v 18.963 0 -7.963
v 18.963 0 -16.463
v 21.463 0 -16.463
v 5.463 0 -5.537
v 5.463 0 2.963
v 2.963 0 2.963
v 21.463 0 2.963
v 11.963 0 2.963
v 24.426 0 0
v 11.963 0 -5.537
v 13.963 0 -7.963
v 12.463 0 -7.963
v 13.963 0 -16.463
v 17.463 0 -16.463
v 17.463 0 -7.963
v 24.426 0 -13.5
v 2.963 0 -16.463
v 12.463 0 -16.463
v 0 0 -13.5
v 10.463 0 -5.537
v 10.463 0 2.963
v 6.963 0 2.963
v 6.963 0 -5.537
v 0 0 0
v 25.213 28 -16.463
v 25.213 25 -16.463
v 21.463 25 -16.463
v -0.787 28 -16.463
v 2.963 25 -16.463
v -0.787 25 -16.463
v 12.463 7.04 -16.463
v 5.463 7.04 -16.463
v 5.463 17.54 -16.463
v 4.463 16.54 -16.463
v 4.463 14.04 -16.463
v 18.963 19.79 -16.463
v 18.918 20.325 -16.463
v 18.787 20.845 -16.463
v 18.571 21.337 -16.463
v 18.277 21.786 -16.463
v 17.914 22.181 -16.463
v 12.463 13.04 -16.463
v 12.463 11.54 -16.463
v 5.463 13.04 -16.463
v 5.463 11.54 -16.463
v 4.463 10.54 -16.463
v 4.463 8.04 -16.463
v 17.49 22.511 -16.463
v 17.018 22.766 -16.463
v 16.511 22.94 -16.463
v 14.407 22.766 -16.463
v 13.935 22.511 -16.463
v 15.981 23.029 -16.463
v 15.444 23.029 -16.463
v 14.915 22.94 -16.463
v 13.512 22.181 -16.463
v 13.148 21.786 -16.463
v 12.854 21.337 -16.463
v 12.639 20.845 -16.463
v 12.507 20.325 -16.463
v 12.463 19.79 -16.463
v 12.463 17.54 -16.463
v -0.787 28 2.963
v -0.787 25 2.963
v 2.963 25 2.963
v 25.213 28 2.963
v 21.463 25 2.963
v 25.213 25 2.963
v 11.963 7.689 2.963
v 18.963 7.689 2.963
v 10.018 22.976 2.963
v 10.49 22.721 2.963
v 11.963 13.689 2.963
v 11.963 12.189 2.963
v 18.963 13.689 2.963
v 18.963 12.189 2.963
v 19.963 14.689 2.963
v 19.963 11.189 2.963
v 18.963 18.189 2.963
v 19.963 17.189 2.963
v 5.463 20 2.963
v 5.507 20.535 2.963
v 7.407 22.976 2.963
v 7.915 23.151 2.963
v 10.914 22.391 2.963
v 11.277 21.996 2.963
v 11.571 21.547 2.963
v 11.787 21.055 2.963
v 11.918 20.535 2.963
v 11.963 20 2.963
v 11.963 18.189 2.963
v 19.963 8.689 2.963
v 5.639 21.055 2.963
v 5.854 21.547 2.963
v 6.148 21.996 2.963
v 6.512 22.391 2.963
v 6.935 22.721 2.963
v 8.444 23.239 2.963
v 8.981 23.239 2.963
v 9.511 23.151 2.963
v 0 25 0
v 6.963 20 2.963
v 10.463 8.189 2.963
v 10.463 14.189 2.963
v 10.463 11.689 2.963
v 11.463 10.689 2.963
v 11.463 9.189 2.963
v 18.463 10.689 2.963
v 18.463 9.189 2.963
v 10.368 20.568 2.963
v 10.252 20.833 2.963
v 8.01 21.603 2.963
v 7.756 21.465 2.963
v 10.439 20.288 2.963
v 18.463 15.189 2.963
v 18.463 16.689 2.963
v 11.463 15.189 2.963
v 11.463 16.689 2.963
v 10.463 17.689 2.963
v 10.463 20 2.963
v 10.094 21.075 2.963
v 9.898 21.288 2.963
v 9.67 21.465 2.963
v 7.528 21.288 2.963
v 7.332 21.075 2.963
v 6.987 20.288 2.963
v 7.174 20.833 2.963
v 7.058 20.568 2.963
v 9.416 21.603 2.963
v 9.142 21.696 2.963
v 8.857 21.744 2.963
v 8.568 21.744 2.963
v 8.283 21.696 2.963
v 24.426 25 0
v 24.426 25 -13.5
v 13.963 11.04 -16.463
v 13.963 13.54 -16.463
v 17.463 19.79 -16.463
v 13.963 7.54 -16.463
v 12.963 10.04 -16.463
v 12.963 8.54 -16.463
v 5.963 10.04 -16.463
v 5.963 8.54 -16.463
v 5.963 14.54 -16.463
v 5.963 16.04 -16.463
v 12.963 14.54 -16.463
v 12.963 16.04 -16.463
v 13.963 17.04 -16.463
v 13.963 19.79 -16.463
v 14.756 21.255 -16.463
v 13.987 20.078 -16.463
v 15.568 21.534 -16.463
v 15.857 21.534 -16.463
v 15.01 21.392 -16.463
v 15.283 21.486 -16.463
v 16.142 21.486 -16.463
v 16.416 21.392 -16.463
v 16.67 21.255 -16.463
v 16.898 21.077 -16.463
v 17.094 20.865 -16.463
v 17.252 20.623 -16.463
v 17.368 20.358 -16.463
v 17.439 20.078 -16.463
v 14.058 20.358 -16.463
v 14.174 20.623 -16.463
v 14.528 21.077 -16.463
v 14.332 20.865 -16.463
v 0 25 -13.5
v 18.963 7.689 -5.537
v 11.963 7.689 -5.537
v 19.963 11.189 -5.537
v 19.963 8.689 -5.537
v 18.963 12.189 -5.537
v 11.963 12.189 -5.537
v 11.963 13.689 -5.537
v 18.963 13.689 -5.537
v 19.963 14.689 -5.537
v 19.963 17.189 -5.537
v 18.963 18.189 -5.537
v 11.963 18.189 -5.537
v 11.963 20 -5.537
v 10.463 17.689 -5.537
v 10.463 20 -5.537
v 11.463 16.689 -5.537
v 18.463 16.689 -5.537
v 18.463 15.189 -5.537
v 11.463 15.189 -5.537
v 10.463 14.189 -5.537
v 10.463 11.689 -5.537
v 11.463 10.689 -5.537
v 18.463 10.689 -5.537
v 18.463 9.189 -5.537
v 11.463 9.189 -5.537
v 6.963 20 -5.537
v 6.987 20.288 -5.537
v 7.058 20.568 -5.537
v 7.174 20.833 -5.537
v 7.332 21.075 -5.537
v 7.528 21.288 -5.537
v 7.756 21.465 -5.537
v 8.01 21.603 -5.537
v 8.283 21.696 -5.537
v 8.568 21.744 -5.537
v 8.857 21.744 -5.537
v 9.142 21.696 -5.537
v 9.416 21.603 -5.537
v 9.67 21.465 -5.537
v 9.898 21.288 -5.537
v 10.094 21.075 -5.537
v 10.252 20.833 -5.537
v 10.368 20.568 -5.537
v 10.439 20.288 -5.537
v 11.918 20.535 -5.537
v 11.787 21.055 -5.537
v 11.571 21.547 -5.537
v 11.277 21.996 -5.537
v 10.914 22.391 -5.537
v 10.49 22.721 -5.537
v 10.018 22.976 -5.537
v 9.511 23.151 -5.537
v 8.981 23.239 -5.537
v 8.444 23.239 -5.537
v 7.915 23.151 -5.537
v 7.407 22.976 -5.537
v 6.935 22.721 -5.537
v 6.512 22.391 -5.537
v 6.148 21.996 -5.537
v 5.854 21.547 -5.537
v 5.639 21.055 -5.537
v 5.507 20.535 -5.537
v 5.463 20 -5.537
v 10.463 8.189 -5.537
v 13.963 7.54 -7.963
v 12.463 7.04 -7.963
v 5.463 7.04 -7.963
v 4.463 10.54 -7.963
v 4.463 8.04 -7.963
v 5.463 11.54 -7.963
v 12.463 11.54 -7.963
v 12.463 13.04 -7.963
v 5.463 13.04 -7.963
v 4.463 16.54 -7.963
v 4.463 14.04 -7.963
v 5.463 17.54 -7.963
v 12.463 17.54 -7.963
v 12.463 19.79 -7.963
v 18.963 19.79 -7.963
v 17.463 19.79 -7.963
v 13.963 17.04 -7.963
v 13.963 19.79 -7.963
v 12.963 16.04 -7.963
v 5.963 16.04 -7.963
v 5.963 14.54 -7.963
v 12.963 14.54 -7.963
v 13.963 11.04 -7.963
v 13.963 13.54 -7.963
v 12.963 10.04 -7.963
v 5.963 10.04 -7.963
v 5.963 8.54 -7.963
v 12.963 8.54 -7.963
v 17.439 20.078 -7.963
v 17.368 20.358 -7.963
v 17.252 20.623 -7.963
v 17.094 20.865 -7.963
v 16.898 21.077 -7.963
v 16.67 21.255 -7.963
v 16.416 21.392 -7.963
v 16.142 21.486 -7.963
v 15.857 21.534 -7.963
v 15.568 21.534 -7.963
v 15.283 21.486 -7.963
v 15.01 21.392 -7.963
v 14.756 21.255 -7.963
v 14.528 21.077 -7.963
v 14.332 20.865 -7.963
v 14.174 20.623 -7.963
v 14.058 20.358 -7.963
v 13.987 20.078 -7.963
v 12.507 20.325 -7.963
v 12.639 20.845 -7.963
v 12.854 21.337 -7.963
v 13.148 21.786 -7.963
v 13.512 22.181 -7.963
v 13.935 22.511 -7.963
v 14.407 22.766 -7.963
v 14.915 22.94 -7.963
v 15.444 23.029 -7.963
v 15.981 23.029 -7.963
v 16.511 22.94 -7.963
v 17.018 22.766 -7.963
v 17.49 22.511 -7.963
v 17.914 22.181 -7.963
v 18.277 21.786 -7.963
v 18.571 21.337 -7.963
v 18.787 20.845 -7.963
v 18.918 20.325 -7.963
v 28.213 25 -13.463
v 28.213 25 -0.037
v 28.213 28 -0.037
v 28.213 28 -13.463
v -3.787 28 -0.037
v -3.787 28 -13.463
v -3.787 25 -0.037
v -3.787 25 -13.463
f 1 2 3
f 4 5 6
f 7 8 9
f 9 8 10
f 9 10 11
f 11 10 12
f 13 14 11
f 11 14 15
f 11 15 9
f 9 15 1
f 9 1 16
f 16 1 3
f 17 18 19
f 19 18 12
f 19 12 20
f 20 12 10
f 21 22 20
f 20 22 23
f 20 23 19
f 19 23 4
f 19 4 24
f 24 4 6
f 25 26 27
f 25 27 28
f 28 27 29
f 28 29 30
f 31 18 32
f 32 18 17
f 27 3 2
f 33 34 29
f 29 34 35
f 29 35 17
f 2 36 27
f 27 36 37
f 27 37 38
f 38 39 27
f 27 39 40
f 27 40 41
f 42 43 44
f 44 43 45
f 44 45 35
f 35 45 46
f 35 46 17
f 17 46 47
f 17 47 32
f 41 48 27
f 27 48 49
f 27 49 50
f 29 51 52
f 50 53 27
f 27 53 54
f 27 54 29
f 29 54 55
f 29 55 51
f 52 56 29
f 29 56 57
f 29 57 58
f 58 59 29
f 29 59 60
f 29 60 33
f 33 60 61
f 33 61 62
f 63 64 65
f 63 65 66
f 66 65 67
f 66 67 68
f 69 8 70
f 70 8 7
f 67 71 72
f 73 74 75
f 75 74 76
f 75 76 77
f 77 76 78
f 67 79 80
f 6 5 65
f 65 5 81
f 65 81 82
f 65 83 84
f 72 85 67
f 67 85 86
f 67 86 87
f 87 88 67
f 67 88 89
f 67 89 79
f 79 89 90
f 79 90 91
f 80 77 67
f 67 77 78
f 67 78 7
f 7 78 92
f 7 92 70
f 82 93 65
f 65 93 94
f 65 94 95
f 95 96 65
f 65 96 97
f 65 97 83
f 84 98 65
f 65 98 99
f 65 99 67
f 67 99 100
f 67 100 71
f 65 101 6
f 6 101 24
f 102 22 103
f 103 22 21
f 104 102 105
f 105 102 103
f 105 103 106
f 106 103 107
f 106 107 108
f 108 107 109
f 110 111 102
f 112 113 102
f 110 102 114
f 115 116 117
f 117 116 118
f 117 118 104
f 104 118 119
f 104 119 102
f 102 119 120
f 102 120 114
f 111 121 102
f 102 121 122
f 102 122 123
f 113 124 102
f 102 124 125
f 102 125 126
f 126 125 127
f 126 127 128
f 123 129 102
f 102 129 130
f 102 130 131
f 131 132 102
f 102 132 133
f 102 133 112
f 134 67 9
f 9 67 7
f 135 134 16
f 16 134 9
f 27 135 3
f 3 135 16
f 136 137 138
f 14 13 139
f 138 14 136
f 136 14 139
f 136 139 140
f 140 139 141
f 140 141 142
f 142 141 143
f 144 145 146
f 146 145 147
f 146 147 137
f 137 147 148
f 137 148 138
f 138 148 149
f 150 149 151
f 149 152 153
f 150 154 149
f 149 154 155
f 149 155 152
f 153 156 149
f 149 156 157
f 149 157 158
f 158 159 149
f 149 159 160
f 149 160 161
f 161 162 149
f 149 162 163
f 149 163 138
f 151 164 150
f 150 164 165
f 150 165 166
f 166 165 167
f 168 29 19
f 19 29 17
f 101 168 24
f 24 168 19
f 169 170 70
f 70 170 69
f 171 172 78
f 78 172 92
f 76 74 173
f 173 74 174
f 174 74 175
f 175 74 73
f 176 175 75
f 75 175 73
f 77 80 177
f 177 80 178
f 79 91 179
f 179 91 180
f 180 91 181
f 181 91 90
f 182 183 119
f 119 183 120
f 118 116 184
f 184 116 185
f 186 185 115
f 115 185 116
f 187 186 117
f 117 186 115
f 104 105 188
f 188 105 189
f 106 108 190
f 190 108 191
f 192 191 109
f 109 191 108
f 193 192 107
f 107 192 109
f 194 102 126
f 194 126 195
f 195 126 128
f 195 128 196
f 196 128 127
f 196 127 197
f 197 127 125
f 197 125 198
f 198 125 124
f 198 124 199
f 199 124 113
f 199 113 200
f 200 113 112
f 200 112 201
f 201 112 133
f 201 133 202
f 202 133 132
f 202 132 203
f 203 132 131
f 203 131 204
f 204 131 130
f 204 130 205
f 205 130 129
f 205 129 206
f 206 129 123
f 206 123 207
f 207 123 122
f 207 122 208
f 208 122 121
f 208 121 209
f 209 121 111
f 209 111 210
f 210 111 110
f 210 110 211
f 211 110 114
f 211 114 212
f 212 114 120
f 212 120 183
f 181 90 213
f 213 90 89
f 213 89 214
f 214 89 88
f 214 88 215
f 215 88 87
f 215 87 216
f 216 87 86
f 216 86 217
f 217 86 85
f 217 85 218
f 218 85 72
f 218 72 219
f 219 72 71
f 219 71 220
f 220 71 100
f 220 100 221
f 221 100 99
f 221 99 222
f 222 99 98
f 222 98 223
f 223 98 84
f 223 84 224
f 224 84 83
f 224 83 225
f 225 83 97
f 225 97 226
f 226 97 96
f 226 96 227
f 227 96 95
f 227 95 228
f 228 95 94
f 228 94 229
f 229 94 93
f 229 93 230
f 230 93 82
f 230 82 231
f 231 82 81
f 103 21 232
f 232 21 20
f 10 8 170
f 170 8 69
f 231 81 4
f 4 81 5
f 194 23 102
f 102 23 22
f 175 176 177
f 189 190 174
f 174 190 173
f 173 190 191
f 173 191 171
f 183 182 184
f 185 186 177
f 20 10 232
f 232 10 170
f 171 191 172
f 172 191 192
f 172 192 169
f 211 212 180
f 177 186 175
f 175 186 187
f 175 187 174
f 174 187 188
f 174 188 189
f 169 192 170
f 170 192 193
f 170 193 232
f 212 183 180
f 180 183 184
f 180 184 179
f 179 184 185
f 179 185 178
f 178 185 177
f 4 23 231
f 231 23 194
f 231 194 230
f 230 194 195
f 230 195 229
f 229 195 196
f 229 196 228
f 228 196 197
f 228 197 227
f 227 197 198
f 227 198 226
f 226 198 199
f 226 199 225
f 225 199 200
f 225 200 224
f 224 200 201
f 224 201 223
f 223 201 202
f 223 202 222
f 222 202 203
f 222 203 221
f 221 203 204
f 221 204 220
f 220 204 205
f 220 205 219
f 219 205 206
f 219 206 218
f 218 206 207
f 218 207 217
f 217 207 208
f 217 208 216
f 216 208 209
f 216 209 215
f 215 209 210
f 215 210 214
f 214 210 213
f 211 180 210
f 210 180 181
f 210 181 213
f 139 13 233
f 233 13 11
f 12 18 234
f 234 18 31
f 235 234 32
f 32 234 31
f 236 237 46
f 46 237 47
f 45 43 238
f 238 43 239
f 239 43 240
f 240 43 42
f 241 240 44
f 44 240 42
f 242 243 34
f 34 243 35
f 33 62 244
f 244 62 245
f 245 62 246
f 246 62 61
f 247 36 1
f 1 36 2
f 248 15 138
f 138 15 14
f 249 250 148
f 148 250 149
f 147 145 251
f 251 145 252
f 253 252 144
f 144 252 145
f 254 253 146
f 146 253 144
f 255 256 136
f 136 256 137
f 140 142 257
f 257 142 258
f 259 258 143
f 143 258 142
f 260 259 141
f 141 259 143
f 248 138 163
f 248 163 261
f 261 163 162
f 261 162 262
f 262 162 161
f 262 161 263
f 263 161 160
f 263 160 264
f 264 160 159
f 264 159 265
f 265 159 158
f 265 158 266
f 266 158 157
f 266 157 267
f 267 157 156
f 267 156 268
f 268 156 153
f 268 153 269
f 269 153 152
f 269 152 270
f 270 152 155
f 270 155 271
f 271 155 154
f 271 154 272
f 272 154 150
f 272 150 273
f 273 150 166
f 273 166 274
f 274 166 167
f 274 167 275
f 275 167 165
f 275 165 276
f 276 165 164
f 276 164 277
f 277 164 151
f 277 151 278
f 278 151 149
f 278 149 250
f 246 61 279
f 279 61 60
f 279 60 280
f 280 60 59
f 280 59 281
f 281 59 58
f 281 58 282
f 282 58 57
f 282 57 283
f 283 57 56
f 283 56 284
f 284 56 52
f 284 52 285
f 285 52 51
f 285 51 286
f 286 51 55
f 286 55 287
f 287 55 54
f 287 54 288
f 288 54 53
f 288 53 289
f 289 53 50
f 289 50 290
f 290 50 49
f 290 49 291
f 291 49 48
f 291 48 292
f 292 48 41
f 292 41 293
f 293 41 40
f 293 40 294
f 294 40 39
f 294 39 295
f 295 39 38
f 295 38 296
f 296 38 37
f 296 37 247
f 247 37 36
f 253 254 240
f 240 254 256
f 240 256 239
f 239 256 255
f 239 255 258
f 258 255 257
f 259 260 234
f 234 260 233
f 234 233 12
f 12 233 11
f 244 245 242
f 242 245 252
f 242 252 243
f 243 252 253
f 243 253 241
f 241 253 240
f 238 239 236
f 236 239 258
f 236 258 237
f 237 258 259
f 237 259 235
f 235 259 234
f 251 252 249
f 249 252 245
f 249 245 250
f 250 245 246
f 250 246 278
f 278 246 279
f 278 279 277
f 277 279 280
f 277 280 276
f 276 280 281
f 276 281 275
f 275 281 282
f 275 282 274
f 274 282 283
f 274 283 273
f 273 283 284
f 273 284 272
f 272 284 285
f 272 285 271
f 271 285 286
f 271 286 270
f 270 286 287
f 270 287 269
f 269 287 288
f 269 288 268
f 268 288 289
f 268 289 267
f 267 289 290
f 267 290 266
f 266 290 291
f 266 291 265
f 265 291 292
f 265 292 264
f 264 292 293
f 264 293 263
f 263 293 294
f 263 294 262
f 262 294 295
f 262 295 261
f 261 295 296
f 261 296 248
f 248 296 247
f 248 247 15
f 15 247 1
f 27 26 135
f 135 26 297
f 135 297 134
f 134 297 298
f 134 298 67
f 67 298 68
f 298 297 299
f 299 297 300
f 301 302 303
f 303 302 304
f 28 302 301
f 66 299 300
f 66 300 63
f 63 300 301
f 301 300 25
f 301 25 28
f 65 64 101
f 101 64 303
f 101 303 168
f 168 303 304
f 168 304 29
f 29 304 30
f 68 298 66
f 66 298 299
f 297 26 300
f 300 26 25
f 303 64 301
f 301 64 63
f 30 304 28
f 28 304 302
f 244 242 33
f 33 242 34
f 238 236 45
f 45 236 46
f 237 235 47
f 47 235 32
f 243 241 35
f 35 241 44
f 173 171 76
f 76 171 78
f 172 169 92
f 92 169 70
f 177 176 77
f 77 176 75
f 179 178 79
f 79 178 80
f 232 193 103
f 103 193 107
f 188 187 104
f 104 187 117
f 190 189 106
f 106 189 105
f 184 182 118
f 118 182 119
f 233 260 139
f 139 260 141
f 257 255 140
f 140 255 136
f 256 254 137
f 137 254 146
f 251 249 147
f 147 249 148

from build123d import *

# Parameters (mm, degrees)
BOSS_EXTRUDE1_DEPTH          = 25
CUT_EXTRUDE_THIN1_DEPTH      = 40.986996748
CUT_EXTRUDE_THIN1_DEPTH_BACK = 8.5
CUT_EXTRUDE_THIN3_DEPTH      = 40.986996748
CUT_EXTRUDE_THIN3_DEPTH_BACK = 8.5
SKETCH5_W                    = 32
SKETCH5_H                    = 19.425554826
BOSS_EXTRUDE2_DEPTH          = 3
CHAMFER3_SIZE                = 3
CHAMFER4_SIZE                = 1


with BuildPart() as part:
    # Sketch2 → Boss-Extrude1 (new body)
    with BuildSketch(Plane(origin=(0, 0, 0), x_dir=(1, 0, 0), z_dir=(0, 1, 0))):
        Polygon((0, 0), (0, 13.5), (2.962777413, 16.462777413), (21.462777413, 16.462777413), (24.425554826, 13.5), (24.425554826, 0), (21.462777413, -2.962777413), (2.962777413, -2.962777413), align=None)
    extrude(amount=BOSS_EXTRUDE1_DEPTH)

    # Sketch3 → Cut-Extrude-Thin1 (cut, two sides: drawn at the far end of the back side and taken through both)
    with BuildSketch(Plane.XY.offset(2.962777413).offset(-CUT_EXTRUDE_THIN1_DEPTH_BACK)):
        with BuildLine():
            Line((6.962777413, 0), (6.962777413, 20))
            ThreePointArc((6.962777413, 20), (8.712777413, 21.75), (10.462777413, 20))
            Line((10.462777413, 20), (10.462777413, 16.688890745))
            Line((10.462777413, 16.688890745), (18.462777413, 16.688890745))
            Line((18.462777413, 16.688890745), (18.462777413, 15.188890745))
            Line((18.462777413, 15.188890745), (10.462777413, 15.188890745))
            Line((10.462777413, 15.188890745), (10.462777413, 10.688890745))
            Line((10.462777413, 10.688890745), (18.462777413, 10.688890745))
            Line((18.462777413, 10.688890745), (18.462777413, 9.188890745))
            Line((18.462777413, 9.188890745), (10.462777413, 9.188890745))
            Line((10.462777413, 9.188890745), (10.462777413, 0))
            Line((10.462777413, 0), (11.962777413, 0))
            Line((11.962777413, 0), (11.962777413, 7.688890745))
            Line((11.962777413, 7.688890745), (19.962777413, 7.688890745))
            Line((19.962777413, 7.688890745), (19.962777413, 12.188890745))
            Line((19.962777413, 12.188890745), (11.962777413, 12.188890745))
            Line((11.962777413, 12.188890745), (11.962777413, 13.688890745))
            Line((11.962777413, 13.688890745), (19.962777413, 13.688890745))
            Line((19.962777413, 13.688890745), (19.962777413, 18.188890745))
            Line((19.962777413, 18.188890745), (11.962777413, 18.188890745))
            Line((11.962777413, 18.188890745), (11.962777413, 20))
            ThreePointArc((11.962777413, 20), (8.712777413, 23.25), (5.462777413, 20))
            Line((5.462777413, 20), (5.462777413, 0))
            Line((5.462777413, 0), (6.962777413, 0))
        make_face()
    extrude(amount=CUT_EXTRUDE_THIN1_DEPTH + CUT_EXTRUDE_THIN1_DEPTH_BACK, mode=Mode.SUBTRACT)

    # Sketch4 → Cut-Extrude-Thin3 (cut, two sides: drawn at the far end of the back side and taken through both)
    with BuildSketch(Plane(origin=(0, 0, -16.462777413), x_dir=(-1, 0, 0), z_dir=(0, 0, -1)).offset(-CUT_EXTRUDE_THIN3_DEPTH_BACK)):
        with BuildLine():
            Line((-17.462777413, 0), (-17.462777413, 19.789881458))
            ThreePointArc((-17.462777413, 19.789881458), (-15.712777413, 21.539881458), (-13.962777413, 19.789881458))
            Line((-13.962777413, 19.789881458), (-13.962777413, 16.039881458))
            Line((-13.962777413, 16.039881458), (-5.962777413, 16.039881458))
            Line((-5.962777413, 16.039881458), (-5.962777413, 14.539881458))
            Line((-5.962777413, 14.539881458), (-13.962777413, 14.539881458))
            Line((-13.962777413, 14.539881458), (-13.962777413, 10.039881458))
            Line((-13.962777413, 10.039881458), (-5.962777413, 10.039881458))
            Line((-5.962777413, 10.039881458), (-5.962777413, 8.539881458))
            Line((-5.962777413, 8.539881458), (-13.962777413, 8.539881458))
            Line((-13.962777413, 8.539881458), (-13.962777413, 0))
            Line((-13.962777413, 0), (-12.462777413, 0))
            Line((-12.462777413, 0), (-12.462777413, 7.039881458))
            Line((-12.462777413, 7.039881458), (-4.462777413, 7.039881458))
            Line((-4.462777413, 7.039881458), (-4.462777413, 11.539881458))
            Line((-4.462777413, 11.539881458), (-12.462777413, 11.539881458))
            Line((-12.462777413, 11.539881458), (-12.462777413, 13.039881458))
            Line((-12.462777413, 13.039881458), (-4.462777413, 13.039881458))
            Line((-4.462777413, 13.039881458), (-4.462777413, 17.539881458))
            Line((-4.462777413, 17.539881458), (-12.462777413, 17.539881458))
            Line((-12.462777413, 17.539881458), (-12.462777413, 19.789881458))
            ThreePointArc((-12.462777413, 19.789881458), (-15.712777413, 23.039881458), (-18.962777413, 19.789881458))
            Line((-18.962777413, 19.789881458), (-18.962777413, 0))
            Line((-18.962777413, 0), (-17.462777413, 0))
        make_face()
    extrude(amount=CUT_EXTRUDE_THIN3_DEPTH + CUT_EXTRUDE_THIN3_DEPTH_BACK, mode=Mode.SUBTRACT)

    # Sketch5 → Boss-Extrude2 (add)
    with BuildSketch(Plane(origin=(0, 25, 0), x_dir=(1, 0, 0), z_dir=(0, 1, 0))):
        with Locations((12.212777413, 6.75)):
            Rectangle(SKETCH5_W, SKETCH5_H)
    extrude(amount=BOSS_EXTRUDE2_DEPTH)

    # Chamfer3
    chamfer3_edges = [part.edges().sort_by_distance(p)[0] for p in [
        (28.212777413, 26.5, 2.962777413),
        (28.212777413, 26.5, -16.462777413),
        (-3.787222587, 26.5, -16.462777413),
        (-3.787222587, 26.5, 2.962777413),
    ]]
    chamfer(chamfer3_edges, length=CHAMFER3_SIZE)

    # Chamfer4
    chamfer4_edges = [part.edges().sort_by_distance(p)[0] for p in [
        (13.962777413, 8.539881458, -12.212777413),
        (4.462777413, 7.039881458, -12.212777413),
        (4.462777413, 11.539881458, -12.212777413),
        (4.462777413, 13.039881458, -12.212777413),
        (4.462777413, 17.539881458, -12.212777413),
        (13.962777413, 16.039881458, -12.212777413),
        (13.962777413, 14.539881458, -12.212777413),
        (13.962777413, 10.039881458, -12.212777413),
        (19.962777413, 7.688890745, -1.287222587),
        (19.962777413, 12.188890745, -1.287222587),
        (19.962777413, 13.688890745, -1.287222587),
        (19.962777413, 18.188890745, -1.287222587),
        (10.462777413, 16.688890745, -1.287222587),
        (10.462777413, 15.188890745, -1.287222587),
        (10.462777413, 10.688890745, -1.287222587),
        (10.462777413, 9.188890745, -1.287222587),
    ]]
    chamfer(chamfer4_edges, length=CHAMFER4_SIZE)


solid = part.part
